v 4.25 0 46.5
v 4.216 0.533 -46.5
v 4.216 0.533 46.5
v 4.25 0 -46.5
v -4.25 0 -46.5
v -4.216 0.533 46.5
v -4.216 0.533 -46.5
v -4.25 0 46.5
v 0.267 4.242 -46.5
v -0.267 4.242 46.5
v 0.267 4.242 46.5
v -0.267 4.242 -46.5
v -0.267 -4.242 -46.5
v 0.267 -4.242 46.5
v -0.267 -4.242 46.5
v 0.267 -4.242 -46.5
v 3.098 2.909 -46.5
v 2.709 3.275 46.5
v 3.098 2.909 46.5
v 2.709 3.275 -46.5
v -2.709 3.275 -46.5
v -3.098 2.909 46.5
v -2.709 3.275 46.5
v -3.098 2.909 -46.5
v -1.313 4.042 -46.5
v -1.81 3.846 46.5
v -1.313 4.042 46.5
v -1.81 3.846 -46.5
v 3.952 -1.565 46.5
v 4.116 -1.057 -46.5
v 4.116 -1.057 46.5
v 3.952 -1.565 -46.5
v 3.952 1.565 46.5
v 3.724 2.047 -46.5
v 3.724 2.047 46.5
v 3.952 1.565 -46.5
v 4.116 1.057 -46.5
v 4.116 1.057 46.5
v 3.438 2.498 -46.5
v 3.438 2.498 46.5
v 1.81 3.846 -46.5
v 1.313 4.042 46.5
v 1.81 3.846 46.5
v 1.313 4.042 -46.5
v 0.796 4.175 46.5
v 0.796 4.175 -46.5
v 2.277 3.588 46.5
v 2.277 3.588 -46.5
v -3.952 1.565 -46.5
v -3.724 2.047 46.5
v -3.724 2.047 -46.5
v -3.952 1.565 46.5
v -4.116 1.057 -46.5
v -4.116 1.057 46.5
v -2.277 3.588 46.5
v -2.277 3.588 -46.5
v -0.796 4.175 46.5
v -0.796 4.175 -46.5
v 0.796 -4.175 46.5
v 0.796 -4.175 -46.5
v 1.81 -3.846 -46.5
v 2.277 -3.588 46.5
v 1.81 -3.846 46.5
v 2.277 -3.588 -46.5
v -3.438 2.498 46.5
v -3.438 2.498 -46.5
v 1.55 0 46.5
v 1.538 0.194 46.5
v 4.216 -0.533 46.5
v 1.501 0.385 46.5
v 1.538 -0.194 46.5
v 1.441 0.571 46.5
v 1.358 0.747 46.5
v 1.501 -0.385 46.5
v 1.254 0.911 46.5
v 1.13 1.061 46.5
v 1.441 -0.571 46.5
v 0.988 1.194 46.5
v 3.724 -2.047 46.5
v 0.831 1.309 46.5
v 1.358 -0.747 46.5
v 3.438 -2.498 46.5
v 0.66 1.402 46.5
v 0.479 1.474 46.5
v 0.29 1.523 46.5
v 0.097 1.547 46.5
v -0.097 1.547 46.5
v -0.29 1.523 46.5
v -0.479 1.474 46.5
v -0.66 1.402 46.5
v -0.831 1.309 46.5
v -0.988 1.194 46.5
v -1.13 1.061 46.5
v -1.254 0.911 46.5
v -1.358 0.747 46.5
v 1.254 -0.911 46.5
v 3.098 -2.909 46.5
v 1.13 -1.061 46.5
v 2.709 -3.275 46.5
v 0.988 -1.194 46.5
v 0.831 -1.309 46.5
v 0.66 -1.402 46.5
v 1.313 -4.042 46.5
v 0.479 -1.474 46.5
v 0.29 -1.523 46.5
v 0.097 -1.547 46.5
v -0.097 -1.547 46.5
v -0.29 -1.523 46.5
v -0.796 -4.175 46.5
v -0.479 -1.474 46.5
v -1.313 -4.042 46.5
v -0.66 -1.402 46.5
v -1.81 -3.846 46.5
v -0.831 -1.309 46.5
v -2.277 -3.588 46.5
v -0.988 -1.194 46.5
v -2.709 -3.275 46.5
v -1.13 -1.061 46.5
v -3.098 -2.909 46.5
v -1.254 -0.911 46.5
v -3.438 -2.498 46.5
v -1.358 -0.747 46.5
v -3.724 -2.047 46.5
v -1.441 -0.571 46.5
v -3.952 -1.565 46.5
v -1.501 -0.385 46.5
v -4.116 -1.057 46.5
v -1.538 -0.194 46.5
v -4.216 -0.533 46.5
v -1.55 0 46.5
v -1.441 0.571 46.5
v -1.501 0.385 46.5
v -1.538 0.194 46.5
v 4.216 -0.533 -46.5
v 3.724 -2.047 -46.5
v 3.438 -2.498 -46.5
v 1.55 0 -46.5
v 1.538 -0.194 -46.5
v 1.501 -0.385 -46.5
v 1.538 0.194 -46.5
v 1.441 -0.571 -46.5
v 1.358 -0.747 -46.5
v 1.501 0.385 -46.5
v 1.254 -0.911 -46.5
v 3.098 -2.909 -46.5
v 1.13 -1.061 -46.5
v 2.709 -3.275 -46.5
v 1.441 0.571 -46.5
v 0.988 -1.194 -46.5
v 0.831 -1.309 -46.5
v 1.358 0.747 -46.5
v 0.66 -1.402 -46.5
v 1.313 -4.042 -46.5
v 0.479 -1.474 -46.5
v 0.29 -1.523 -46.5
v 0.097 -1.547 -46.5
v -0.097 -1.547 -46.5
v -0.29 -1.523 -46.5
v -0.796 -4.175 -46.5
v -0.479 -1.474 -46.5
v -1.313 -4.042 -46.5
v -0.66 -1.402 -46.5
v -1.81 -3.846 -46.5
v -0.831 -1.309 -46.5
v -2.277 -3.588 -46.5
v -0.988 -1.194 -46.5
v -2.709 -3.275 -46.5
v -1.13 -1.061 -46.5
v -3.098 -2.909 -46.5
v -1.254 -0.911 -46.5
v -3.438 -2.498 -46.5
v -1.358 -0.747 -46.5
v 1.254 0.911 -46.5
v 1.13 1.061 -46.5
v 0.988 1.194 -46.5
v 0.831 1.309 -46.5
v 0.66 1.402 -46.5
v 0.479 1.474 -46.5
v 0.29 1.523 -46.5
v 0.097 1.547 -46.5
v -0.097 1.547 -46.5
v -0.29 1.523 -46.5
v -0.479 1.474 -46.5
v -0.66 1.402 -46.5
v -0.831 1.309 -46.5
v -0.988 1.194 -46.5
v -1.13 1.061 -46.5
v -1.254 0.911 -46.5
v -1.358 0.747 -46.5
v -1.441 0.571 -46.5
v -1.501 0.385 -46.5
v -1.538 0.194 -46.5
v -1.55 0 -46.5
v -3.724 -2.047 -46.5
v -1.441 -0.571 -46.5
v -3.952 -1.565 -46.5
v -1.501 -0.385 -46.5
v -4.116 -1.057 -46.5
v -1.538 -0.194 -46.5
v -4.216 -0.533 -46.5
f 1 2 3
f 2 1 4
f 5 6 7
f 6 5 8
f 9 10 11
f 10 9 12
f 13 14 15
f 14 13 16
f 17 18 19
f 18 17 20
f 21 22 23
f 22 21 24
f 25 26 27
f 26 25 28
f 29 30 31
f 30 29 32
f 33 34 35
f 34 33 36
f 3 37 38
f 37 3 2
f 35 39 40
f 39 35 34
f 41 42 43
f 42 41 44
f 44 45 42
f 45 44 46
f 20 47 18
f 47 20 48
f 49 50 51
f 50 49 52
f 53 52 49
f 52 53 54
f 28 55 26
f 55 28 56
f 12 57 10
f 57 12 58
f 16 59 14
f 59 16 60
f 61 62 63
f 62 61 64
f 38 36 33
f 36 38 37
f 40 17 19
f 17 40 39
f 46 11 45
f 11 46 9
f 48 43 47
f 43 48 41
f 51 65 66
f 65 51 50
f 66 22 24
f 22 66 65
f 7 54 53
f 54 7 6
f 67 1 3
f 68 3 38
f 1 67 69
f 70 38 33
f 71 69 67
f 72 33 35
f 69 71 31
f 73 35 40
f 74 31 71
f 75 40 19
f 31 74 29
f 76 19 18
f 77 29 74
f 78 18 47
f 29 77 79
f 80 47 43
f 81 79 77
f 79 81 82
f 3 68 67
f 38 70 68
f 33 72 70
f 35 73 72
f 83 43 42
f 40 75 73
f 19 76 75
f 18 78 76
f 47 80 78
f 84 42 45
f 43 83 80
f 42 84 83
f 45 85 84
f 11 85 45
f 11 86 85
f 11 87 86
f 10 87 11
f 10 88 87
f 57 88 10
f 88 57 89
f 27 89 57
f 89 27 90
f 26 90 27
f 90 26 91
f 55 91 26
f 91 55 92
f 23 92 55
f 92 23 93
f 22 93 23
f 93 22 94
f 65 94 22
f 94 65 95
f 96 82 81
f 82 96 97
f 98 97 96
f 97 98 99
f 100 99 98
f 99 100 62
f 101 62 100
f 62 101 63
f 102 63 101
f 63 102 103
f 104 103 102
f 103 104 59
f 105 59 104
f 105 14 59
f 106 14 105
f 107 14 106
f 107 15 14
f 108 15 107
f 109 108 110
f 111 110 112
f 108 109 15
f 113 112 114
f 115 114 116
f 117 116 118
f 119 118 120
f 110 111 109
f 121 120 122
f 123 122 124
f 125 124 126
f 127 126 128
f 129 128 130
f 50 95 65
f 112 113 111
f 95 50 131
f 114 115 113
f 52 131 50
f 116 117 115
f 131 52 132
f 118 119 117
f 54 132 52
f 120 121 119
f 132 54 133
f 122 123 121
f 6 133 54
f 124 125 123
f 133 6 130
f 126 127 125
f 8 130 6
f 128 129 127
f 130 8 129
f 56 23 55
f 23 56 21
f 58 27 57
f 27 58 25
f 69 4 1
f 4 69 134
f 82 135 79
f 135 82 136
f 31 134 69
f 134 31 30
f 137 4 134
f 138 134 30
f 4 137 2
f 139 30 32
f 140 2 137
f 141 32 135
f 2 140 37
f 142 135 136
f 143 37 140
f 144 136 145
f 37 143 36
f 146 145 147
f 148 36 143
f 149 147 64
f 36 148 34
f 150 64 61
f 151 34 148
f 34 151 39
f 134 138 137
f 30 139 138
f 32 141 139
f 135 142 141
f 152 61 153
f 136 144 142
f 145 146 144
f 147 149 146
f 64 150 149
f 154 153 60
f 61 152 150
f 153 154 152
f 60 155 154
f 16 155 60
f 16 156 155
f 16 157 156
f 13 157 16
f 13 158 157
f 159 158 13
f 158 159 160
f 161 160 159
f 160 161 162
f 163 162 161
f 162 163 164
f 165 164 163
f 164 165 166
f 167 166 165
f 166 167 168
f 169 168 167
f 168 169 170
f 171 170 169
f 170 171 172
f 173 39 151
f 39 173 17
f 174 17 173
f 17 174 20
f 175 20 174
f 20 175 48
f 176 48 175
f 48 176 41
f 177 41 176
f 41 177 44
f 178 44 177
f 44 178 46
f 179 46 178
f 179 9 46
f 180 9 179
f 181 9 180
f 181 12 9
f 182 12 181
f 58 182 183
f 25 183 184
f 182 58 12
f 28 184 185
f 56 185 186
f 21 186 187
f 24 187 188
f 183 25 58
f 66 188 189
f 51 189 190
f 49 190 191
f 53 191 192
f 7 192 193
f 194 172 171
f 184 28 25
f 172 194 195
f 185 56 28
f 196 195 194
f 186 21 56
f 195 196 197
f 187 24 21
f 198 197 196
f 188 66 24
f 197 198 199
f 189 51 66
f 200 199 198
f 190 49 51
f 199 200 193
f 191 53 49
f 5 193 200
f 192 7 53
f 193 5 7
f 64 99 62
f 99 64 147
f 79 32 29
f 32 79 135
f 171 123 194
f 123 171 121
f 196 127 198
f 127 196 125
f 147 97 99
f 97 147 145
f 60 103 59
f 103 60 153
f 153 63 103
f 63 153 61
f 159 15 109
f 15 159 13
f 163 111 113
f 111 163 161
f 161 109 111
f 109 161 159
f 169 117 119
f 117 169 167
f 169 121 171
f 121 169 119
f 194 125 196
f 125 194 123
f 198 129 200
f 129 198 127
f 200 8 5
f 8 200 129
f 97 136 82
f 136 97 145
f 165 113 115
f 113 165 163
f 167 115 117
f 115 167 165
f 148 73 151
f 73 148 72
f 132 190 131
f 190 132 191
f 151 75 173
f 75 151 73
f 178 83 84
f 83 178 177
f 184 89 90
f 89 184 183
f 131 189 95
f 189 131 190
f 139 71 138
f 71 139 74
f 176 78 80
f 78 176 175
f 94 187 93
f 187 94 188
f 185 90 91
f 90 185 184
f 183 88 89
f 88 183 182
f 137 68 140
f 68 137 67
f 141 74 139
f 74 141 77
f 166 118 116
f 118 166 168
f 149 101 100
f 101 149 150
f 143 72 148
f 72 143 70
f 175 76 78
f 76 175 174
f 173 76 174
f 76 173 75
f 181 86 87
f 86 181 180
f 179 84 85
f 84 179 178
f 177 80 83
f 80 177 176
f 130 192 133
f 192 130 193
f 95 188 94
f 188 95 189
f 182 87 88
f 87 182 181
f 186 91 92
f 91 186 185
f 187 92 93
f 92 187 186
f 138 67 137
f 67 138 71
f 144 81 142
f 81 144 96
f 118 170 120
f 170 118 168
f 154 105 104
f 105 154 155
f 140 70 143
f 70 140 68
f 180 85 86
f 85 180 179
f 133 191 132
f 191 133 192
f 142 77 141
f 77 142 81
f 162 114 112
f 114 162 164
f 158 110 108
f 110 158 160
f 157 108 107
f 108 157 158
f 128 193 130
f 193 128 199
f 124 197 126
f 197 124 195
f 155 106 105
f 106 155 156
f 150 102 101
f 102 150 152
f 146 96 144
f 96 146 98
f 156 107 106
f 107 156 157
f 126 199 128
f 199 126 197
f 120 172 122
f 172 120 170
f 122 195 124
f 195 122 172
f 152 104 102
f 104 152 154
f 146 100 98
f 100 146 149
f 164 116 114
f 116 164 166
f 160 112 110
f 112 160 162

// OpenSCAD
$fn = 50;


difference() {
	union() {
		translate(v = [0, 0, -46.5000000000]) {
			cylinder(h = 93, r = 4.2500000000);
		}
	}
	union() {
		translate(v = [0, 0, -100.0000000000]) {
			cylinder(h = 200, r = 1.5500000000);
		}
	}
}
